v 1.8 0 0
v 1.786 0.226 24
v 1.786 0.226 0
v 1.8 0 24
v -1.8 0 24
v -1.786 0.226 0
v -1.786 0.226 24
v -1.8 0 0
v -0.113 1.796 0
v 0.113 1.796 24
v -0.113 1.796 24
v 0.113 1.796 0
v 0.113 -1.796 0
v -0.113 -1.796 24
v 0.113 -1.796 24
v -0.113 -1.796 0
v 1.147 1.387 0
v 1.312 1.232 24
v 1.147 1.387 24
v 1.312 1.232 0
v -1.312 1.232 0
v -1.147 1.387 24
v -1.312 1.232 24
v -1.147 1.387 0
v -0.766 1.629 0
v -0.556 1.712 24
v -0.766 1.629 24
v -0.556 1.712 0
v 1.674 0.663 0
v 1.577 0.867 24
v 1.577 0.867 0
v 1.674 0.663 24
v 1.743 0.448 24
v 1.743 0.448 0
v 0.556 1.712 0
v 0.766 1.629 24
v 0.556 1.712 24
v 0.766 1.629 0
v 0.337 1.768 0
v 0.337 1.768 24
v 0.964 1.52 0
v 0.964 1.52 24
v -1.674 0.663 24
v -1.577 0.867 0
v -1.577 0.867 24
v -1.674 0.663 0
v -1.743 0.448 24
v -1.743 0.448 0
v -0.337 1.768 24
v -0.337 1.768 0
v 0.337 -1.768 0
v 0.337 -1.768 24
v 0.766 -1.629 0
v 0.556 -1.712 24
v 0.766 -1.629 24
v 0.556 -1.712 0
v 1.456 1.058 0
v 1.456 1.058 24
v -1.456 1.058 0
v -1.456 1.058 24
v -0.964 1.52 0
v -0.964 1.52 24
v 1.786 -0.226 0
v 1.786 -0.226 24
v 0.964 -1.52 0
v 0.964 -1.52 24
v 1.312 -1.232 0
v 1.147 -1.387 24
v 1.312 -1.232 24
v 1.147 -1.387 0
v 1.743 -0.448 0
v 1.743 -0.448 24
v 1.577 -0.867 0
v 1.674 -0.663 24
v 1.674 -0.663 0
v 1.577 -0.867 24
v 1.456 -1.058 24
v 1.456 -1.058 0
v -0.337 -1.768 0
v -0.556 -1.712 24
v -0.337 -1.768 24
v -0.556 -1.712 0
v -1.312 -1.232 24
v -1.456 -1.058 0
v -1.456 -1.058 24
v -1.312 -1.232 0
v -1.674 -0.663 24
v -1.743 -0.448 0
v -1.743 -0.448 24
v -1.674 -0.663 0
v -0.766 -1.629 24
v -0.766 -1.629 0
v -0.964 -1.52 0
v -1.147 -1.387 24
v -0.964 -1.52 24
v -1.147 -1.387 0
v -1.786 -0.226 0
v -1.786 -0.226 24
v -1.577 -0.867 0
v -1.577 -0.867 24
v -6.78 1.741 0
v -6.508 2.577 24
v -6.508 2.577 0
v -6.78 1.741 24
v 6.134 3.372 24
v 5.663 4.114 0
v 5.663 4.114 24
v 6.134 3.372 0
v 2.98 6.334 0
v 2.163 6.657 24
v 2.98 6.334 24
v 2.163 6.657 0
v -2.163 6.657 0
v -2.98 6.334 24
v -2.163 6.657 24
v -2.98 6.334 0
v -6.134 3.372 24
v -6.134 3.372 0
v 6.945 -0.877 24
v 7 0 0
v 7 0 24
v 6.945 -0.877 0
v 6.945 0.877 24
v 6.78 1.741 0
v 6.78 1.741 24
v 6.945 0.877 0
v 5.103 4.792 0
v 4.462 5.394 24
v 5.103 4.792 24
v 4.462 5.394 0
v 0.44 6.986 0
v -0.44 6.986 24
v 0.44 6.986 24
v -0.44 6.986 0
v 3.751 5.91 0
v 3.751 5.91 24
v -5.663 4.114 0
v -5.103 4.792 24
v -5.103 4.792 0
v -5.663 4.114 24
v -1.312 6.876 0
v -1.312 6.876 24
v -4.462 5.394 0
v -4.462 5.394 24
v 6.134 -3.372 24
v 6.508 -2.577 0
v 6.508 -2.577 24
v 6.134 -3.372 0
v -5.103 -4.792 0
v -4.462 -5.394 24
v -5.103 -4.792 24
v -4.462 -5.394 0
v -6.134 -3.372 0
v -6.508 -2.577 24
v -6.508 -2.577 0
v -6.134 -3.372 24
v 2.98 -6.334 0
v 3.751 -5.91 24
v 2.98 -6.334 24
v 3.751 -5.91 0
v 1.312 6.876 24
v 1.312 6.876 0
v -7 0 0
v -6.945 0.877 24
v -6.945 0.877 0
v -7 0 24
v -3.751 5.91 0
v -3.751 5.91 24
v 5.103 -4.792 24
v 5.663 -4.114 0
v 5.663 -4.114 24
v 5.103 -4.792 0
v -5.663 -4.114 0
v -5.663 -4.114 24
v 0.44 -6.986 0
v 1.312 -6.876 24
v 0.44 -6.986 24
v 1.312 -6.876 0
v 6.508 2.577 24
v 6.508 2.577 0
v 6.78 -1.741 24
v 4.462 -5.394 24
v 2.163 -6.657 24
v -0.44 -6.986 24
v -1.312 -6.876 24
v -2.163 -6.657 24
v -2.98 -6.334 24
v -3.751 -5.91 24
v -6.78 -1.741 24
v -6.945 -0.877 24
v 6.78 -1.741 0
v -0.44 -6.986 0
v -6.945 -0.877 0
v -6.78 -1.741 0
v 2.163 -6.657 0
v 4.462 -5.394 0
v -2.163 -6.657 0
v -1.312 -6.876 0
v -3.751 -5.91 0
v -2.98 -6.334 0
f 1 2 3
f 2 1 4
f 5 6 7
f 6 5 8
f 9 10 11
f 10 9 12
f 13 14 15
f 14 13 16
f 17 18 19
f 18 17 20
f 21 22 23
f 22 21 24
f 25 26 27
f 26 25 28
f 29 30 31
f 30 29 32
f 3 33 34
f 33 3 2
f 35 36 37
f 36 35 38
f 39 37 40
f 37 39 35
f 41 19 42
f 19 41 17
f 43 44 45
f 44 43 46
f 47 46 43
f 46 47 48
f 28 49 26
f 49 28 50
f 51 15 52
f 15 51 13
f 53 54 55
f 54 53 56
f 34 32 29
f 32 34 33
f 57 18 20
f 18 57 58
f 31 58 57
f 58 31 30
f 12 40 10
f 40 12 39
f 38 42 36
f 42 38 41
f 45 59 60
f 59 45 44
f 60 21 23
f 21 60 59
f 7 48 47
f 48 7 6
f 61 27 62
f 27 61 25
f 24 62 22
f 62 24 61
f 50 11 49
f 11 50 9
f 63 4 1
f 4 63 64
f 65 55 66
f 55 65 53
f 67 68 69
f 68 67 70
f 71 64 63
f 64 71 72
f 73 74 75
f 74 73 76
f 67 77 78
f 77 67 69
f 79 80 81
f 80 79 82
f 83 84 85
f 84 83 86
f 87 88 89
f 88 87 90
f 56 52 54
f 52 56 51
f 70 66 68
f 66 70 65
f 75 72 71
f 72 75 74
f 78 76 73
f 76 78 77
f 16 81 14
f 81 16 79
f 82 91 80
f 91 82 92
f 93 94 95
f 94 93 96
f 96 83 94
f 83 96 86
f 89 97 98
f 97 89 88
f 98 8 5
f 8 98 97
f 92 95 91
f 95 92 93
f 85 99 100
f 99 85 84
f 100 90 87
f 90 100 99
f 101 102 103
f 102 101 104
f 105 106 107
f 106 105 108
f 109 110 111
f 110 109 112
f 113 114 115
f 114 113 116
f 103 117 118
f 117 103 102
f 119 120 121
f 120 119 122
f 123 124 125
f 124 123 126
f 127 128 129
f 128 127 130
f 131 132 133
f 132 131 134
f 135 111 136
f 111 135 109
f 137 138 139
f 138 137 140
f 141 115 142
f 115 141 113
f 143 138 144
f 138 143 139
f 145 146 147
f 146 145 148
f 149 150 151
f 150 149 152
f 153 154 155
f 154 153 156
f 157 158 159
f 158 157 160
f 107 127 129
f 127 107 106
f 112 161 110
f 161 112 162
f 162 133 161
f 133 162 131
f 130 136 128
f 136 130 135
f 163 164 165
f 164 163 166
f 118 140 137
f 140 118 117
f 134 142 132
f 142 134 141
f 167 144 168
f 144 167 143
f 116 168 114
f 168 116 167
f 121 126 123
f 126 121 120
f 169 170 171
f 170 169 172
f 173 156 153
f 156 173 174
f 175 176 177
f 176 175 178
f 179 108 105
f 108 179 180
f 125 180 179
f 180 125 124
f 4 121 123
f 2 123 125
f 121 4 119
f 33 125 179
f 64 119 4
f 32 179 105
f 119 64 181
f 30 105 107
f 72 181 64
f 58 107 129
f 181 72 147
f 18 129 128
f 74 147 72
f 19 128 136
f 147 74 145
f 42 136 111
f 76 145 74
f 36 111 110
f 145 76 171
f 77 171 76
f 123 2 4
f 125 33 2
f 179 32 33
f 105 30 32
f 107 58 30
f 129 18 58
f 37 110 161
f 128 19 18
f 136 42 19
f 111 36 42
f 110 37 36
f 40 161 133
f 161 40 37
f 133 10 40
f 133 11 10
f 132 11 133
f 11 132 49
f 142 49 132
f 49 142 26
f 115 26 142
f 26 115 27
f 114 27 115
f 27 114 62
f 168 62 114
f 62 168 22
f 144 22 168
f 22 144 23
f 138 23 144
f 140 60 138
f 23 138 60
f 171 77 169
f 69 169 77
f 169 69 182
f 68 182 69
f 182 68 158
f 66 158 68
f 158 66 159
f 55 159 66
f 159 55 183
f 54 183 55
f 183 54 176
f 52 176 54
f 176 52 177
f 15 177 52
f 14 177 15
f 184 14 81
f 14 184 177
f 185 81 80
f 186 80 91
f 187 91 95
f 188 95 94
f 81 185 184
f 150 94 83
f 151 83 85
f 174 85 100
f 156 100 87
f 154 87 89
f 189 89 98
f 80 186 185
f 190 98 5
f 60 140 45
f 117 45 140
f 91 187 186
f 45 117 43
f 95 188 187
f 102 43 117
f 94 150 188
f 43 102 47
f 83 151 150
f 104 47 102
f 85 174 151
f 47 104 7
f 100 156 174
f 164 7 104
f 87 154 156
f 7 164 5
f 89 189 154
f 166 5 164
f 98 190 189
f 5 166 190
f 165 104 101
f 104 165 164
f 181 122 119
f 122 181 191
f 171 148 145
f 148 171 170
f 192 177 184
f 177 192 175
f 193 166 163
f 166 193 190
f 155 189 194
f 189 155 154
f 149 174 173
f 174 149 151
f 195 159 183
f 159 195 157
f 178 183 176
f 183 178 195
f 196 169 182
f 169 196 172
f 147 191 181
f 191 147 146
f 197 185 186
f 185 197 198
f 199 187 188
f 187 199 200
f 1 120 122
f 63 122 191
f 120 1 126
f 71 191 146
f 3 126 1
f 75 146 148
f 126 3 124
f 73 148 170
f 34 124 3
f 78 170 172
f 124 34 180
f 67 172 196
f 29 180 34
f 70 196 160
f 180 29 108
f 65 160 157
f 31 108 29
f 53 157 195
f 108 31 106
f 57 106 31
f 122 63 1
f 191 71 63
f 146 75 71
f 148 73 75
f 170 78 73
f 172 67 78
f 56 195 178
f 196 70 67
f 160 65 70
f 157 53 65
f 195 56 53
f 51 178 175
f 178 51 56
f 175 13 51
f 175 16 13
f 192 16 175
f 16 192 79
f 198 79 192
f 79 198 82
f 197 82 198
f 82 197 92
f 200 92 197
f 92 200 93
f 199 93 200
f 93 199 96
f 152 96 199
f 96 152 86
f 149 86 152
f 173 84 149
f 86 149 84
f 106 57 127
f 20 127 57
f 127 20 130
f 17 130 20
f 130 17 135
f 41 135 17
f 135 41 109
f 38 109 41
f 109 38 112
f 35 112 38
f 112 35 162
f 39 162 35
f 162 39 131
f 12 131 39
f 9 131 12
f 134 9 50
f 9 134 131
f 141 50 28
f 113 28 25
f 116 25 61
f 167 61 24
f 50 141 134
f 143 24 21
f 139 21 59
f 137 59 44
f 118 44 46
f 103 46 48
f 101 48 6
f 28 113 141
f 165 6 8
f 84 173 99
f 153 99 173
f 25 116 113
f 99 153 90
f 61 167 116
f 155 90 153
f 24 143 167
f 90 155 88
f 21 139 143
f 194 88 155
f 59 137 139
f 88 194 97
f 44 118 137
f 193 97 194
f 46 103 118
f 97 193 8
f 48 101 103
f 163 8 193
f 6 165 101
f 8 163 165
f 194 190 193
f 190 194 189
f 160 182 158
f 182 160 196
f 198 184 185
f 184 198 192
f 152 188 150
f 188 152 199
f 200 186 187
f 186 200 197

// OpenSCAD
$fn = 50;


difference() {
	union() {
		cylinder(h = 24, r = 7.0000000000);
	}
	union() {
		translate(v = [0.0000000000, 0.0000000000, -100.0000000000]) {
			cylinder(h = 200, r = 1.8000000000);
		}
		cylinder(h = 24, r = 1.8000000000);
		cylinder(h = 24, r = 1.8000000000);
		cylinder(h = 24, r = 1.8000000000);
	}
}
